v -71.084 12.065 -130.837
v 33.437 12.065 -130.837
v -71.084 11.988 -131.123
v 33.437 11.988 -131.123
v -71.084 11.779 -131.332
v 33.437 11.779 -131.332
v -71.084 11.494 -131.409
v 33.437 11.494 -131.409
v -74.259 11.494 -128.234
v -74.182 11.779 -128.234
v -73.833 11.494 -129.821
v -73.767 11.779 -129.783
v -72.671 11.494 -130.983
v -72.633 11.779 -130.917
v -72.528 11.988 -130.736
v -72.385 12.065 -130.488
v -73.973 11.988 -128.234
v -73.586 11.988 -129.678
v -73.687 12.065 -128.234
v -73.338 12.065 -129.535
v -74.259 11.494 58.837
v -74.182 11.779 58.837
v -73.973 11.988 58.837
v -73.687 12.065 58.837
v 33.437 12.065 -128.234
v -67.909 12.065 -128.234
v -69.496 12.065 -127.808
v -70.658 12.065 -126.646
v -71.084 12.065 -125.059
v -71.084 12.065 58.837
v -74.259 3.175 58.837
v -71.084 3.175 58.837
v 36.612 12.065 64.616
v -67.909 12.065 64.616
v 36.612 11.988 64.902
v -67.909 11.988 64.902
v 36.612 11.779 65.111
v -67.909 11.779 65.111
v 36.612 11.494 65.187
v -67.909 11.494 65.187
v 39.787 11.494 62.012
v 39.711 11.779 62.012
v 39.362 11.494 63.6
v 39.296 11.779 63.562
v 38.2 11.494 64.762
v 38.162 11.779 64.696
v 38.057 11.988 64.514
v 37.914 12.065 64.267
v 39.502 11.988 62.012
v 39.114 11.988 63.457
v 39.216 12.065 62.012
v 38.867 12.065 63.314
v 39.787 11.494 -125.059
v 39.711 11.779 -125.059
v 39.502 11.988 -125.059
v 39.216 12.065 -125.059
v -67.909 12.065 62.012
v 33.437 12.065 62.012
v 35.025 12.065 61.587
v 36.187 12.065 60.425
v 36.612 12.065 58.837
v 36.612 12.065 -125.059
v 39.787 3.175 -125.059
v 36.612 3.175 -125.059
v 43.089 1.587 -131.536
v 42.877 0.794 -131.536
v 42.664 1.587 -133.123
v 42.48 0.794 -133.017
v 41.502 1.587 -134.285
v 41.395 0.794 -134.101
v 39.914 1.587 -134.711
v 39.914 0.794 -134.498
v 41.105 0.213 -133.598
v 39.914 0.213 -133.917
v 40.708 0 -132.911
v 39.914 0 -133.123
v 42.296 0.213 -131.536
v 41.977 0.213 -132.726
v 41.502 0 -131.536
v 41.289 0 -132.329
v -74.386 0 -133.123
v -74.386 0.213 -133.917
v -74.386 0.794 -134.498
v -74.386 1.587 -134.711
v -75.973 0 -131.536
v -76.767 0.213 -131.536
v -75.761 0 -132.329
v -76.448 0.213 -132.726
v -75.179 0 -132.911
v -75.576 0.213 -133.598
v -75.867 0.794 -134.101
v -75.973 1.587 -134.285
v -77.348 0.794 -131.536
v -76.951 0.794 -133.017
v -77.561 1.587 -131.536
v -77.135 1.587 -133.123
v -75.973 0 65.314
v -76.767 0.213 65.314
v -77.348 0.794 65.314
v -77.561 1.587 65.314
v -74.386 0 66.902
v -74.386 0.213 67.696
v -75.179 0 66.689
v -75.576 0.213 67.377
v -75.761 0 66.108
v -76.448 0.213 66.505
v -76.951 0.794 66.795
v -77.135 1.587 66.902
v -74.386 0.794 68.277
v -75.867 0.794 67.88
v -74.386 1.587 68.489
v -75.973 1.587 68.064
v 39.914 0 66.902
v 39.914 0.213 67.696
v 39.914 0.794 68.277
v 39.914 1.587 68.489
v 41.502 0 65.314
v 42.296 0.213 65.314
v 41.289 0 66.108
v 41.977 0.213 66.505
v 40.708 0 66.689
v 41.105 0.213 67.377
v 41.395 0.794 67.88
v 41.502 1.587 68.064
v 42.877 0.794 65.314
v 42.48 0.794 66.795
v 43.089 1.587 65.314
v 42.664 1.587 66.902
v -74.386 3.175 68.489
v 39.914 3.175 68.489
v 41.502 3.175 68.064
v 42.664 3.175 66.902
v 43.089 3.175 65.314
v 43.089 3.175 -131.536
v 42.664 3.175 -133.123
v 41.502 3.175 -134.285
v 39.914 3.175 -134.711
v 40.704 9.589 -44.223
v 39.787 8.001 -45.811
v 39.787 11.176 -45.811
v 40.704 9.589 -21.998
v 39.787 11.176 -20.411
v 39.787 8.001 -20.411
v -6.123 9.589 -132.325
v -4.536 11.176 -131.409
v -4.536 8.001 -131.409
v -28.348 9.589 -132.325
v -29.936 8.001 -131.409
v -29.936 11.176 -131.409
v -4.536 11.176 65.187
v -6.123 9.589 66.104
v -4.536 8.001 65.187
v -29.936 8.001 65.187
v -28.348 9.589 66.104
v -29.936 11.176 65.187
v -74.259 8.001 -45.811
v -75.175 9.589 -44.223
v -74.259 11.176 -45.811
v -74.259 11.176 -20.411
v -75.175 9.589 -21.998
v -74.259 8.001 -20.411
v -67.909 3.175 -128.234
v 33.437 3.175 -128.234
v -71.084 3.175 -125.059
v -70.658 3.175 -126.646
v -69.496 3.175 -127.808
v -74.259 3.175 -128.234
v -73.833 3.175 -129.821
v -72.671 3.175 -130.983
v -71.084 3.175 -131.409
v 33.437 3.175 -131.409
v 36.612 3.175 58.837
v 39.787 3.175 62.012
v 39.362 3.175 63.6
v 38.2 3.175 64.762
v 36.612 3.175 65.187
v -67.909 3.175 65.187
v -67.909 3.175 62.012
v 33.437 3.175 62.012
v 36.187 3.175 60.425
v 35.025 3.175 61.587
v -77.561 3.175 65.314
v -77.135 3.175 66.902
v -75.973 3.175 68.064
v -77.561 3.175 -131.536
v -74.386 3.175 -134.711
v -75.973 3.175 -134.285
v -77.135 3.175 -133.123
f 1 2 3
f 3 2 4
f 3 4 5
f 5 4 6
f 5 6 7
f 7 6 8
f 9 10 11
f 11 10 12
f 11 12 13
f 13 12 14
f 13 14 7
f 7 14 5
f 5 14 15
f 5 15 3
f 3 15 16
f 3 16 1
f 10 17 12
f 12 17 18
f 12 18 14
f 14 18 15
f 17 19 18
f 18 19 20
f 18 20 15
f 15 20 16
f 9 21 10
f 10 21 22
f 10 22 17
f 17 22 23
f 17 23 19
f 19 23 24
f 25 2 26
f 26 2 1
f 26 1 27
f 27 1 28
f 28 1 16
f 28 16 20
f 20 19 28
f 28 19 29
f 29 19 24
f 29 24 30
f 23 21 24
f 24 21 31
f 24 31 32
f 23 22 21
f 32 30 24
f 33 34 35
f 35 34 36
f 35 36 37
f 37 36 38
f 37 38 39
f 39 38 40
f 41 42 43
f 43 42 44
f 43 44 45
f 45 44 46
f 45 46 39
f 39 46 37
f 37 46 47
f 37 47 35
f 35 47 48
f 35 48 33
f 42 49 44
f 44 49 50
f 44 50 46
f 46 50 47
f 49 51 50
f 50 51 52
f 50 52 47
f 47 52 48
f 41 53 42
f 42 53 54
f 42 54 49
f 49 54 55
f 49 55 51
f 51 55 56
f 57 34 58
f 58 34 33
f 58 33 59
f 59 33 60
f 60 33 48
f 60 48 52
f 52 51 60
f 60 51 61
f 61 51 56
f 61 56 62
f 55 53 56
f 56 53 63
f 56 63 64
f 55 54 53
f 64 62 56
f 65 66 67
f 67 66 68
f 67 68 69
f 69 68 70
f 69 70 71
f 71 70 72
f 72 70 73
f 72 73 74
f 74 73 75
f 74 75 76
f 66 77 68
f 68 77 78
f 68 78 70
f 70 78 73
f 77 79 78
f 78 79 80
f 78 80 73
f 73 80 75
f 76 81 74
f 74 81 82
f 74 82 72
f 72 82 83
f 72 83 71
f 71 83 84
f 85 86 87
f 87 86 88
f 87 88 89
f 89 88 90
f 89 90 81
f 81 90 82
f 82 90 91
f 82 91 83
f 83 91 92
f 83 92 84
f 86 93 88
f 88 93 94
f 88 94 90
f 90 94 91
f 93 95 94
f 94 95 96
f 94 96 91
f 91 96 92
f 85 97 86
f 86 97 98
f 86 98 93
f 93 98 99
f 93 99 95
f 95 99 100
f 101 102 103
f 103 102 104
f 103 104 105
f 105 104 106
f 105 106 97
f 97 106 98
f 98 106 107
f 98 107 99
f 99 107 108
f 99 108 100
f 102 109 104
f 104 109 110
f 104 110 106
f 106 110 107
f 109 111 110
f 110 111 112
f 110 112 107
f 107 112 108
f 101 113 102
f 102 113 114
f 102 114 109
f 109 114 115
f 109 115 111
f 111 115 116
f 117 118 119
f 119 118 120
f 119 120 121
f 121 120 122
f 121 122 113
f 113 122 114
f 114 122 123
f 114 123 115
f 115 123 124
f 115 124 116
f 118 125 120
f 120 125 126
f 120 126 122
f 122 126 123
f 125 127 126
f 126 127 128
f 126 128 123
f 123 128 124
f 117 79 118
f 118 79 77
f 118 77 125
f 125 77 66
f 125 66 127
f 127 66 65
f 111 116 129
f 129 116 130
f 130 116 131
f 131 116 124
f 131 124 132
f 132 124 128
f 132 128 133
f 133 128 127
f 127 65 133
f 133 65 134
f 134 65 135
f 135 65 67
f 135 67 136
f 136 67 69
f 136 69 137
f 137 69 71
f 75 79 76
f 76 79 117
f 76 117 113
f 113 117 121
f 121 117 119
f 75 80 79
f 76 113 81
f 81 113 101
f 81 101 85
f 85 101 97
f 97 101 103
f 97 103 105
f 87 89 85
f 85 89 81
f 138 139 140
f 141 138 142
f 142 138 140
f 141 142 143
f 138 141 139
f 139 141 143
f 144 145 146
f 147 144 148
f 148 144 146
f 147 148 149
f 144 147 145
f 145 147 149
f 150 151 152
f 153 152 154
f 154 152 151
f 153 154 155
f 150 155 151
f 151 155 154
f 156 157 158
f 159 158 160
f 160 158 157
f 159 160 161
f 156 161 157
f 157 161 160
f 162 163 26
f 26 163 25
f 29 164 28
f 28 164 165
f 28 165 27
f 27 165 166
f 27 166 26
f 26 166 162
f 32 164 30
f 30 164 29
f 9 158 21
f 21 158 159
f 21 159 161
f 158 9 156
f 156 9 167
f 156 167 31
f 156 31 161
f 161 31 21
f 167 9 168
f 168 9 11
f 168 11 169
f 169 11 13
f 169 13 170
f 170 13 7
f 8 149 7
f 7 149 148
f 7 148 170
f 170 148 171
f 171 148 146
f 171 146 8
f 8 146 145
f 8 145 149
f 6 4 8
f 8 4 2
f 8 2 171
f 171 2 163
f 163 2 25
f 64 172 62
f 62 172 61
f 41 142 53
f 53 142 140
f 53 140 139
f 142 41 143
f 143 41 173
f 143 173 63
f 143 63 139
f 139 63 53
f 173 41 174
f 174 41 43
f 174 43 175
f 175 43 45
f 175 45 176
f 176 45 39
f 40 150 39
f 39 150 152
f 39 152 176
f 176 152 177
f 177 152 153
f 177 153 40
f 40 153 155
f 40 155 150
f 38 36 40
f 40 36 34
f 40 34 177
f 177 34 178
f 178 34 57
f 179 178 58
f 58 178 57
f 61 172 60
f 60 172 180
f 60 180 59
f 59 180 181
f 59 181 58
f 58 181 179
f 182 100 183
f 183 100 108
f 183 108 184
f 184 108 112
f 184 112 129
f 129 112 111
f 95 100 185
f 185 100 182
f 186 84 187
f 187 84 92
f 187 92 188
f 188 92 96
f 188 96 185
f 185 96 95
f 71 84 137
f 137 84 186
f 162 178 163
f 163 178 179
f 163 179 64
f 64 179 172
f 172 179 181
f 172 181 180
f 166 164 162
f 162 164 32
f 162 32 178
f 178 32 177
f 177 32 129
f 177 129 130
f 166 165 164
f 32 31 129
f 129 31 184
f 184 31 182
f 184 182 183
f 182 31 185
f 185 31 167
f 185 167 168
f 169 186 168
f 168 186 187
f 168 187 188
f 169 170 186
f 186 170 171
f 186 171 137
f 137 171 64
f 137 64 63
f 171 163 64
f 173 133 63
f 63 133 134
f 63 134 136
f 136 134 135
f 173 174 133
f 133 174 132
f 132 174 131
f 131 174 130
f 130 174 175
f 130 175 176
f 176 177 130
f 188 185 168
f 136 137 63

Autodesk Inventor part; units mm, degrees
ref_plane "YZ Plane" through (0, 0, 0) normal (1, 0, 0) x (0, 1, 0)
sketch "Sketch1" plane through (0, 0, 0) normal (0, 1, 0) x (-1, 0, 0)
  line L0 (-39.9143, 68.4893) -> (74.3857, 68.4893)
  line L1 (77.5607, 65.3143) -> (77.5607, -131.5357)
  line L2 (74.3857, -134.7107) -> (-39.9143, -134.7107)
  line L3 (-43.0893, -131.5357) -> (-43.0893, 65.3143)
  arc A0 (74.3857, -134.7107) -> (77.5607, -131.5357) centre (74.3857, -131.5357) ccw
  arc A1 (-43.0893, -131.5357) -> (-39.9143, -134.7107) centre (-39.9143, -131.5357) ccw
  arc A2 (-39.9143, 68.4893) -> (-43.0893, 65.3143) centre (-39.9143, 65.3143) ccw
  arc A3 (77.5607, 65.3143) -> (74.3857, 68.4893) centre (74.3857, 65.3143) ccw
  point P0 (0, 0)
  point P1 (-43.0893, 68.4893)
  point P2 (77.5607, -134.7107)
  point P3 (77.5607, 68.4893)
  point P4 (-43.0893, -134.7107)
  dimension "d0" = 203.2
  dimension "d1" = 120.65
  dimension "d16" = 3.175
extrude "Extrusion1" add sketch "Sketch1" along normal blind 3.175
sketch "Sketch2" plane through (0, 3.175, 0) normal (0, 1, 0) x (1, 0, 0)
  line L0 (-74.3857, -68.4893) -> (39.9143, -68.4893) projected
  line L1 (-77.5607, 131.5357) -> (-77.5607, -65.3143) projected
  line L2 (39.9143, 134.7107) -> (-74.3857, 134.7107) projected
  line L3 (43.0893, -65.3143) -> (43.0893, 131.5357) projected
  line L4 (-74.2587, 128.2337) -> (-74.2587, -62.0123)
  line L5 (-71.0837, -65.1873) -> (36.6123, -65.1873)
  line L6 (39.7873, -62.0123) -> (39.7873, 128.2337)
  line L7 (36.6123, 131.4087) -> (-71.0837, 131.4087)
  line L8 (-71.0837, 125.0587) -> (-71.0837, -58.8373)
  line L9 (-67.9087, -62.0123) -> (33.4373, -62.0123)
  line L10 (36.6123, -58.8373) -> (36.6123, 125.0587)
  line L11 (33.4373, 128.2337) -> (-67.9087, 128.2337)
  arc A0 (-74.2587, -62.0123) -> (-71.0837, -65.1873) centre (-71.0837, -62.0123) ccw
  arc A1 (-71.0837, -58.8373) -> (-67.9087, -62.0123) centre (-67.9087, -58.8373) ccw
  arc A2 (33.4373, -62.0123) -> (36.6123, -58.8373) centre (33.4373, -58.8373) ccw
  arc A3 (36.6123, -65.1873) -> (39.7873, -62.0123) centre (36.6123, -62.0123) ccw
  arc A4 (39.7873, 128.2337) -> (36.6123, 131.4087) centre (36.6123, 128.2337) ccw
  arc A5 (36.6123, 125.0587) -> (33.4373, 128.2337) centre (33.4373, 125.0587) ccw
  arc A6 (-67.9087, 128.2337) -> (-71.0837, 125.0587) centre (-67.9087, 125.0587) ccw
  arc A7 (-71.0837, 131.4087) -> (-74.2587, 128.2337) centre (-71.0837, 128.2337) ccw
  line L12 (-71.0837, -58.8373) -> (-74.2587, -58.8373)
  line L13 (-67.9087, -62.0123) -> (-67.9087, -65.1873)
  line L14 (36.6123, 125.0587) -> (39.7873, 125.0587)
  line L15 (33.4373, 128.2337) -> (33.4373, 131.4087)
  point P0 (0, 0)
  point P1 (-77.5607, -68.4893)
  point P2 (43.0893, -68.4893)
  point P3 (-77.5607, 134.7107)
  point P4 (43.0893, 134.7107)
  dimension "d11" = 3.302
  dimension "d12" = 3.175
  dimension "d13" = 3.175
extrude "Extrusion3" add sketch "Sketch2" along normal blind 8.89 contours A7 L7 L15 L11 A6 L8 L12 L4 | L9 A2 L10 L14 L6 A3 L5 L13
sketch "Sketch3" plane through (-74.2587, 3.175, -128.2337) normal (-1, 0, 0) x (0, 0, 1)
  line L0 (3.175, 0) -> (187.071, 0) projected
  line L1 (95.123, 0) -> (95.123, 6.4135)
  line L2 (82.423, 4.826) -> (107.823, 4.826)
  line L3 (107.823, 4.826) -> (107.823, 8.001)
  line L4 (107.823, 8.001) -> (82.423, 8.001)
  line L5 (82.423, 8.001) -> (82.423, 4.826)
  line L6 (82.423, 4.826) -> (107.823, 8.001) construction
  line L7 (107.823, 4.826) -> (82.423, 8.001) construction
  point P0 (128.2337, -3.175)
  dimension "d17" = 6.4135
  dimension "d18" = 25.4
  dimension "d19" = 3.175
extrude "Extrusion4" add sketch "Sketch3" along normal blind 8.255 draft -60
sketch "Sketch5" plane through (-67.9087, 3.175, 65.1873) normal (0, 0, 1) x (1, 0, 0)
  line L0 (0, 0) -> (0, 8.89) projected
  line L1 (101.346, 0) -> (101.346, 8.89) projected
  line L2 (63.373, 4.826) -> (37.973, 4.826)
  line L3 (37.973, 4.826) -> (37.973, 8.001)
  line L4 (37.973, 8.001) -> (63.373, 8.001)
  line L5 (63.373, 8.001) -> (63.373, 4.826)
  line L6 (63.373, 4.826) -> (37.973, 8.001) construction
  line L7 (37.973, 4.826) -> (63.373, 8.001) construction
  line L8 (-6.477, 0) -> (107.823, 0) projected
  point P0 (67.9087, -3.175)
  point P1 (50.673, 6.4135)
  dimension "d22" = 25.4
  dimension "d23" = 3.175
  dimension "d24" = 6.4135
extrude "Extrusion5" add sketch "Sketch5" along normal blind 8.89 draft -60
ref_plane "Work Plane1" through (-67.9087, 3.175, -33.1107) normal (0, 0, 1) x (1, 0, 0)
ref_plane "Work Plane2" through (-17.2357, 3.175, 62.0123) normal (1, 0, 0) x (0, 0, -1)
mirror "Mirror1" about plane through (-67.9087, 3.175, -33.1107) normal (0, 0, 1) of "Extrusion5"
mirror "Mirror2" about plane through (-17.2357, 3.175, 62.0123) normal (1, 0, 0) of "Extrusion4"
fillet "Fillet1" radius 1.5875 8 edges at (42.1594, 0, -133.7808) (-17.2357, 0, -134.7107) (-76.6308, 0, -133.7808) (-77.5607, 0, -33.1107) (-76.6308, 0, 67.5593) (-17.2357, 0, 68.4893) (42.1594, 0, 67.5593) (43.0893, 0, -33.1107)
fillet "Fillet2" radius 0.5715 6 edges at (38.8574, 12.065, 64.2573) (-15.6482, 12.065, 65.1873) (39.7873, 12.065, -31.5232) (-73.3288, 12.065, -130.4788) (-74.2587, 12.065, -34.6982) (-18.8232, 12.065, -131.4087)
properties part number "RemoteControllerBottom"
